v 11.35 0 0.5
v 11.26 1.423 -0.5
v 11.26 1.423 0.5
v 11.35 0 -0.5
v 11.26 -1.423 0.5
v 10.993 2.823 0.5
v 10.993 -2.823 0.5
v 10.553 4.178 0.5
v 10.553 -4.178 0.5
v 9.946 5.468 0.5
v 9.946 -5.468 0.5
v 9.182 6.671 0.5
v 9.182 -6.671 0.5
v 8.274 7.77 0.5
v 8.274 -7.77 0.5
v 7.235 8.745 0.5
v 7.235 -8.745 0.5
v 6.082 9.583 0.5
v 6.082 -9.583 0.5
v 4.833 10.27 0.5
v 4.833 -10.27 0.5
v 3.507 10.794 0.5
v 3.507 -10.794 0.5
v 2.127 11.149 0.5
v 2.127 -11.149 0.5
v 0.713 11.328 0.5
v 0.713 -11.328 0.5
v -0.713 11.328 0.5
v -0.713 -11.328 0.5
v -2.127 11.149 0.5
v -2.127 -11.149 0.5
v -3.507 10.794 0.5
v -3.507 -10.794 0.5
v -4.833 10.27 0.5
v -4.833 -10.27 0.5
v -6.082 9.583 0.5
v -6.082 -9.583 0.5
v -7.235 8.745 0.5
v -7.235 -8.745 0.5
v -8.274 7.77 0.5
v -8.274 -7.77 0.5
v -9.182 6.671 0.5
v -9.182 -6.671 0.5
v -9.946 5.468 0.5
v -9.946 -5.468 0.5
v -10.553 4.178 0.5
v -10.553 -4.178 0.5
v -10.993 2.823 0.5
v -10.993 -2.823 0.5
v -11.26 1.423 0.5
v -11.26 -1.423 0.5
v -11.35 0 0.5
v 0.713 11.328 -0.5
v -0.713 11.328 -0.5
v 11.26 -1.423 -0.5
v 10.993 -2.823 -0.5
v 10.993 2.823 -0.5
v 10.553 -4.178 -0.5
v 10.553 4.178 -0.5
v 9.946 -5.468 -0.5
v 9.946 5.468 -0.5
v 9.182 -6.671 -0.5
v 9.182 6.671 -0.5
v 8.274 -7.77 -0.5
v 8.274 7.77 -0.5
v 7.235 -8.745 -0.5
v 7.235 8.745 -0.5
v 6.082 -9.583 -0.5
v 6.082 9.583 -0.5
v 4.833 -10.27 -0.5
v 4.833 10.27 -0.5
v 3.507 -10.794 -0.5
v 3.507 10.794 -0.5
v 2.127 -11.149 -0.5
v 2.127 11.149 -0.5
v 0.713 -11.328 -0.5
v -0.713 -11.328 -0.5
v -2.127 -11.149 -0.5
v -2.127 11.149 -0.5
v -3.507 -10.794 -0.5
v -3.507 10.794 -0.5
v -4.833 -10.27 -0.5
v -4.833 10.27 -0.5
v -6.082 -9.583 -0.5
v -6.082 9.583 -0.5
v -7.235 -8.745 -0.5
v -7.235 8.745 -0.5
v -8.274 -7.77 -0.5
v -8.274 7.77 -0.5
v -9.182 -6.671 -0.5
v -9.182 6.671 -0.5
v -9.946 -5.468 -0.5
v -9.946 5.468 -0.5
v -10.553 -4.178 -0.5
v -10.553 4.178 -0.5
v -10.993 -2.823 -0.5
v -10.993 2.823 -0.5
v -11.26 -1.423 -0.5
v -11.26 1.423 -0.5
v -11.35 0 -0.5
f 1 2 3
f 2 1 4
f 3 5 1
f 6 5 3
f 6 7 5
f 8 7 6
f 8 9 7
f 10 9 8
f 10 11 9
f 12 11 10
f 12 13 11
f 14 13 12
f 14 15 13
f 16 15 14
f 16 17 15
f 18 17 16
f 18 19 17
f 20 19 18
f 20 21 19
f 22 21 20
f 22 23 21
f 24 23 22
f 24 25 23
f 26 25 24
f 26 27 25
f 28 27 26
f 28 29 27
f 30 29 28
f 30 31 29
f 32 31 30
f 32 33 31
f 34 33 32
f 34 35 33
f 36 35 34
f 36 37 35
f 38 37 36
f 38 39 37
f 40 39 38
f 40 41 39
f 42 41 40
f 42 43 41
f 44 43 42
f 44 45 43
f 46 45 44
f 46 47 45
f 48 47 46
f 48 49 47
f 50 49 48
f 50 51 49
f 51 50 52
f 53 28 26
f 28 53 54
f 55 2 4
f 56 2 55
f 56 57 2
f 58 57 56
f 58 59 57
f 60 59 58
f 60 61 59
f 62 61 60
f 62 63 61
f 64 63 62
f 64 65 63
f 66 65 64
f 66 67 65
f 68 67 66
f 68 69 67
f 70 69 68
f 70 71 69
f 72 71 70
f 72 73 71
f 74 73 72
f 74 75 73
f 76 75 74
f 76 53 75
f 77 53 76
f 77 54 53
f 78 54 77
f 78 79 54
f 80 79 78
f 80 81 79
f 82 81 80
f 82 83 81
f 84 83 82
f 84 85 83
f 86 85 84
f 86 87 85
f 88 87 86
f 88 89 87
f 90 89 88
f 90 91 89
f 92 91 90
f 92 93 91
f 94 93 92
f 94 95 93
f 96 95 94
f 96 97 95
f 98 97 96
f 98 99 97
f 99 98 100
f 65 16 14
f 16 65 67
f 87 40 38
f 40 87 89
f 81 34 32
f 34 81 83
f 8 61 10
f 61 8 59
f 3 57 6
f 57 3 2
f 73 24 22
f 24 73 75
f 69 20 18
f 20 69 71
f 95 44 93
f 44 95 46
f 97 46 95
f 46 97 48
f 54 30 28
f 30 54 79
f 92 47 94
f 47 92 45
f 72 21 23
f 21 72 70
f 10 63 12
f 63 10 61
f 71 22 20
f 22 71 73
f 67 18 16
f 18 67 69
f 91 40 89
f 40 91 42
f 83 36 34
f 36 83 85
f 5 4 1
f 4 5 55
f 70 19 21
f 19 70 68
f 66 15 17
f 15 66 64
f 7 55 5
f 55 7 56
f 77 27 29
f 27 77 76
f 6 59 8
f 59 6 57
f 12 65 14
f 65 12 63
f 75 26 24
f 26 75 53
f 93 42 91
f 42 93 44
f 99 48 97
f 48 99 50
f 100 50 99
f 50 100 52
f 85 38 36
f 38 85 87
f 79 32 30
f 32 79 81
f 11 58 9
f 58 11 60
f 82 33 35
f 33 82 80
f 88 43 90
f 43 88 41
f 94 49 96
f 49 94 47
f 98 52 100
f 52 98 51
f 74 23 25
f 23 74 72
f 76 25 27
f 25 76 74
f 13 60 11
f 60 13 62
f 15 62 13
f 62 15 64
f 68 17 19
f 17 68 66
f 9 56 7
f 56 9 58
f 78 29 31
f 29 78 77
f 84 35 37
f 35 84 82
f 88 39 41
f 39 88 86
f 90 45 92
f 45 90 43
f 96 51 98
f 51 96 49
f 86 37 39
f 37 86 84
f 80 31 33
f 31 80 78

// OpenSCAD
$fn = 50;


difference() {
	union() {
		translate(v = [0, 0, -0.5000000000]) {
			cylinder(h = 1, r = 11.3500000000);
		}
	}
	union() {
		translate(v = [0, 0, -100.0000000000]) {
			cylinder(h = 200, r = 0);
		}
	}
}
